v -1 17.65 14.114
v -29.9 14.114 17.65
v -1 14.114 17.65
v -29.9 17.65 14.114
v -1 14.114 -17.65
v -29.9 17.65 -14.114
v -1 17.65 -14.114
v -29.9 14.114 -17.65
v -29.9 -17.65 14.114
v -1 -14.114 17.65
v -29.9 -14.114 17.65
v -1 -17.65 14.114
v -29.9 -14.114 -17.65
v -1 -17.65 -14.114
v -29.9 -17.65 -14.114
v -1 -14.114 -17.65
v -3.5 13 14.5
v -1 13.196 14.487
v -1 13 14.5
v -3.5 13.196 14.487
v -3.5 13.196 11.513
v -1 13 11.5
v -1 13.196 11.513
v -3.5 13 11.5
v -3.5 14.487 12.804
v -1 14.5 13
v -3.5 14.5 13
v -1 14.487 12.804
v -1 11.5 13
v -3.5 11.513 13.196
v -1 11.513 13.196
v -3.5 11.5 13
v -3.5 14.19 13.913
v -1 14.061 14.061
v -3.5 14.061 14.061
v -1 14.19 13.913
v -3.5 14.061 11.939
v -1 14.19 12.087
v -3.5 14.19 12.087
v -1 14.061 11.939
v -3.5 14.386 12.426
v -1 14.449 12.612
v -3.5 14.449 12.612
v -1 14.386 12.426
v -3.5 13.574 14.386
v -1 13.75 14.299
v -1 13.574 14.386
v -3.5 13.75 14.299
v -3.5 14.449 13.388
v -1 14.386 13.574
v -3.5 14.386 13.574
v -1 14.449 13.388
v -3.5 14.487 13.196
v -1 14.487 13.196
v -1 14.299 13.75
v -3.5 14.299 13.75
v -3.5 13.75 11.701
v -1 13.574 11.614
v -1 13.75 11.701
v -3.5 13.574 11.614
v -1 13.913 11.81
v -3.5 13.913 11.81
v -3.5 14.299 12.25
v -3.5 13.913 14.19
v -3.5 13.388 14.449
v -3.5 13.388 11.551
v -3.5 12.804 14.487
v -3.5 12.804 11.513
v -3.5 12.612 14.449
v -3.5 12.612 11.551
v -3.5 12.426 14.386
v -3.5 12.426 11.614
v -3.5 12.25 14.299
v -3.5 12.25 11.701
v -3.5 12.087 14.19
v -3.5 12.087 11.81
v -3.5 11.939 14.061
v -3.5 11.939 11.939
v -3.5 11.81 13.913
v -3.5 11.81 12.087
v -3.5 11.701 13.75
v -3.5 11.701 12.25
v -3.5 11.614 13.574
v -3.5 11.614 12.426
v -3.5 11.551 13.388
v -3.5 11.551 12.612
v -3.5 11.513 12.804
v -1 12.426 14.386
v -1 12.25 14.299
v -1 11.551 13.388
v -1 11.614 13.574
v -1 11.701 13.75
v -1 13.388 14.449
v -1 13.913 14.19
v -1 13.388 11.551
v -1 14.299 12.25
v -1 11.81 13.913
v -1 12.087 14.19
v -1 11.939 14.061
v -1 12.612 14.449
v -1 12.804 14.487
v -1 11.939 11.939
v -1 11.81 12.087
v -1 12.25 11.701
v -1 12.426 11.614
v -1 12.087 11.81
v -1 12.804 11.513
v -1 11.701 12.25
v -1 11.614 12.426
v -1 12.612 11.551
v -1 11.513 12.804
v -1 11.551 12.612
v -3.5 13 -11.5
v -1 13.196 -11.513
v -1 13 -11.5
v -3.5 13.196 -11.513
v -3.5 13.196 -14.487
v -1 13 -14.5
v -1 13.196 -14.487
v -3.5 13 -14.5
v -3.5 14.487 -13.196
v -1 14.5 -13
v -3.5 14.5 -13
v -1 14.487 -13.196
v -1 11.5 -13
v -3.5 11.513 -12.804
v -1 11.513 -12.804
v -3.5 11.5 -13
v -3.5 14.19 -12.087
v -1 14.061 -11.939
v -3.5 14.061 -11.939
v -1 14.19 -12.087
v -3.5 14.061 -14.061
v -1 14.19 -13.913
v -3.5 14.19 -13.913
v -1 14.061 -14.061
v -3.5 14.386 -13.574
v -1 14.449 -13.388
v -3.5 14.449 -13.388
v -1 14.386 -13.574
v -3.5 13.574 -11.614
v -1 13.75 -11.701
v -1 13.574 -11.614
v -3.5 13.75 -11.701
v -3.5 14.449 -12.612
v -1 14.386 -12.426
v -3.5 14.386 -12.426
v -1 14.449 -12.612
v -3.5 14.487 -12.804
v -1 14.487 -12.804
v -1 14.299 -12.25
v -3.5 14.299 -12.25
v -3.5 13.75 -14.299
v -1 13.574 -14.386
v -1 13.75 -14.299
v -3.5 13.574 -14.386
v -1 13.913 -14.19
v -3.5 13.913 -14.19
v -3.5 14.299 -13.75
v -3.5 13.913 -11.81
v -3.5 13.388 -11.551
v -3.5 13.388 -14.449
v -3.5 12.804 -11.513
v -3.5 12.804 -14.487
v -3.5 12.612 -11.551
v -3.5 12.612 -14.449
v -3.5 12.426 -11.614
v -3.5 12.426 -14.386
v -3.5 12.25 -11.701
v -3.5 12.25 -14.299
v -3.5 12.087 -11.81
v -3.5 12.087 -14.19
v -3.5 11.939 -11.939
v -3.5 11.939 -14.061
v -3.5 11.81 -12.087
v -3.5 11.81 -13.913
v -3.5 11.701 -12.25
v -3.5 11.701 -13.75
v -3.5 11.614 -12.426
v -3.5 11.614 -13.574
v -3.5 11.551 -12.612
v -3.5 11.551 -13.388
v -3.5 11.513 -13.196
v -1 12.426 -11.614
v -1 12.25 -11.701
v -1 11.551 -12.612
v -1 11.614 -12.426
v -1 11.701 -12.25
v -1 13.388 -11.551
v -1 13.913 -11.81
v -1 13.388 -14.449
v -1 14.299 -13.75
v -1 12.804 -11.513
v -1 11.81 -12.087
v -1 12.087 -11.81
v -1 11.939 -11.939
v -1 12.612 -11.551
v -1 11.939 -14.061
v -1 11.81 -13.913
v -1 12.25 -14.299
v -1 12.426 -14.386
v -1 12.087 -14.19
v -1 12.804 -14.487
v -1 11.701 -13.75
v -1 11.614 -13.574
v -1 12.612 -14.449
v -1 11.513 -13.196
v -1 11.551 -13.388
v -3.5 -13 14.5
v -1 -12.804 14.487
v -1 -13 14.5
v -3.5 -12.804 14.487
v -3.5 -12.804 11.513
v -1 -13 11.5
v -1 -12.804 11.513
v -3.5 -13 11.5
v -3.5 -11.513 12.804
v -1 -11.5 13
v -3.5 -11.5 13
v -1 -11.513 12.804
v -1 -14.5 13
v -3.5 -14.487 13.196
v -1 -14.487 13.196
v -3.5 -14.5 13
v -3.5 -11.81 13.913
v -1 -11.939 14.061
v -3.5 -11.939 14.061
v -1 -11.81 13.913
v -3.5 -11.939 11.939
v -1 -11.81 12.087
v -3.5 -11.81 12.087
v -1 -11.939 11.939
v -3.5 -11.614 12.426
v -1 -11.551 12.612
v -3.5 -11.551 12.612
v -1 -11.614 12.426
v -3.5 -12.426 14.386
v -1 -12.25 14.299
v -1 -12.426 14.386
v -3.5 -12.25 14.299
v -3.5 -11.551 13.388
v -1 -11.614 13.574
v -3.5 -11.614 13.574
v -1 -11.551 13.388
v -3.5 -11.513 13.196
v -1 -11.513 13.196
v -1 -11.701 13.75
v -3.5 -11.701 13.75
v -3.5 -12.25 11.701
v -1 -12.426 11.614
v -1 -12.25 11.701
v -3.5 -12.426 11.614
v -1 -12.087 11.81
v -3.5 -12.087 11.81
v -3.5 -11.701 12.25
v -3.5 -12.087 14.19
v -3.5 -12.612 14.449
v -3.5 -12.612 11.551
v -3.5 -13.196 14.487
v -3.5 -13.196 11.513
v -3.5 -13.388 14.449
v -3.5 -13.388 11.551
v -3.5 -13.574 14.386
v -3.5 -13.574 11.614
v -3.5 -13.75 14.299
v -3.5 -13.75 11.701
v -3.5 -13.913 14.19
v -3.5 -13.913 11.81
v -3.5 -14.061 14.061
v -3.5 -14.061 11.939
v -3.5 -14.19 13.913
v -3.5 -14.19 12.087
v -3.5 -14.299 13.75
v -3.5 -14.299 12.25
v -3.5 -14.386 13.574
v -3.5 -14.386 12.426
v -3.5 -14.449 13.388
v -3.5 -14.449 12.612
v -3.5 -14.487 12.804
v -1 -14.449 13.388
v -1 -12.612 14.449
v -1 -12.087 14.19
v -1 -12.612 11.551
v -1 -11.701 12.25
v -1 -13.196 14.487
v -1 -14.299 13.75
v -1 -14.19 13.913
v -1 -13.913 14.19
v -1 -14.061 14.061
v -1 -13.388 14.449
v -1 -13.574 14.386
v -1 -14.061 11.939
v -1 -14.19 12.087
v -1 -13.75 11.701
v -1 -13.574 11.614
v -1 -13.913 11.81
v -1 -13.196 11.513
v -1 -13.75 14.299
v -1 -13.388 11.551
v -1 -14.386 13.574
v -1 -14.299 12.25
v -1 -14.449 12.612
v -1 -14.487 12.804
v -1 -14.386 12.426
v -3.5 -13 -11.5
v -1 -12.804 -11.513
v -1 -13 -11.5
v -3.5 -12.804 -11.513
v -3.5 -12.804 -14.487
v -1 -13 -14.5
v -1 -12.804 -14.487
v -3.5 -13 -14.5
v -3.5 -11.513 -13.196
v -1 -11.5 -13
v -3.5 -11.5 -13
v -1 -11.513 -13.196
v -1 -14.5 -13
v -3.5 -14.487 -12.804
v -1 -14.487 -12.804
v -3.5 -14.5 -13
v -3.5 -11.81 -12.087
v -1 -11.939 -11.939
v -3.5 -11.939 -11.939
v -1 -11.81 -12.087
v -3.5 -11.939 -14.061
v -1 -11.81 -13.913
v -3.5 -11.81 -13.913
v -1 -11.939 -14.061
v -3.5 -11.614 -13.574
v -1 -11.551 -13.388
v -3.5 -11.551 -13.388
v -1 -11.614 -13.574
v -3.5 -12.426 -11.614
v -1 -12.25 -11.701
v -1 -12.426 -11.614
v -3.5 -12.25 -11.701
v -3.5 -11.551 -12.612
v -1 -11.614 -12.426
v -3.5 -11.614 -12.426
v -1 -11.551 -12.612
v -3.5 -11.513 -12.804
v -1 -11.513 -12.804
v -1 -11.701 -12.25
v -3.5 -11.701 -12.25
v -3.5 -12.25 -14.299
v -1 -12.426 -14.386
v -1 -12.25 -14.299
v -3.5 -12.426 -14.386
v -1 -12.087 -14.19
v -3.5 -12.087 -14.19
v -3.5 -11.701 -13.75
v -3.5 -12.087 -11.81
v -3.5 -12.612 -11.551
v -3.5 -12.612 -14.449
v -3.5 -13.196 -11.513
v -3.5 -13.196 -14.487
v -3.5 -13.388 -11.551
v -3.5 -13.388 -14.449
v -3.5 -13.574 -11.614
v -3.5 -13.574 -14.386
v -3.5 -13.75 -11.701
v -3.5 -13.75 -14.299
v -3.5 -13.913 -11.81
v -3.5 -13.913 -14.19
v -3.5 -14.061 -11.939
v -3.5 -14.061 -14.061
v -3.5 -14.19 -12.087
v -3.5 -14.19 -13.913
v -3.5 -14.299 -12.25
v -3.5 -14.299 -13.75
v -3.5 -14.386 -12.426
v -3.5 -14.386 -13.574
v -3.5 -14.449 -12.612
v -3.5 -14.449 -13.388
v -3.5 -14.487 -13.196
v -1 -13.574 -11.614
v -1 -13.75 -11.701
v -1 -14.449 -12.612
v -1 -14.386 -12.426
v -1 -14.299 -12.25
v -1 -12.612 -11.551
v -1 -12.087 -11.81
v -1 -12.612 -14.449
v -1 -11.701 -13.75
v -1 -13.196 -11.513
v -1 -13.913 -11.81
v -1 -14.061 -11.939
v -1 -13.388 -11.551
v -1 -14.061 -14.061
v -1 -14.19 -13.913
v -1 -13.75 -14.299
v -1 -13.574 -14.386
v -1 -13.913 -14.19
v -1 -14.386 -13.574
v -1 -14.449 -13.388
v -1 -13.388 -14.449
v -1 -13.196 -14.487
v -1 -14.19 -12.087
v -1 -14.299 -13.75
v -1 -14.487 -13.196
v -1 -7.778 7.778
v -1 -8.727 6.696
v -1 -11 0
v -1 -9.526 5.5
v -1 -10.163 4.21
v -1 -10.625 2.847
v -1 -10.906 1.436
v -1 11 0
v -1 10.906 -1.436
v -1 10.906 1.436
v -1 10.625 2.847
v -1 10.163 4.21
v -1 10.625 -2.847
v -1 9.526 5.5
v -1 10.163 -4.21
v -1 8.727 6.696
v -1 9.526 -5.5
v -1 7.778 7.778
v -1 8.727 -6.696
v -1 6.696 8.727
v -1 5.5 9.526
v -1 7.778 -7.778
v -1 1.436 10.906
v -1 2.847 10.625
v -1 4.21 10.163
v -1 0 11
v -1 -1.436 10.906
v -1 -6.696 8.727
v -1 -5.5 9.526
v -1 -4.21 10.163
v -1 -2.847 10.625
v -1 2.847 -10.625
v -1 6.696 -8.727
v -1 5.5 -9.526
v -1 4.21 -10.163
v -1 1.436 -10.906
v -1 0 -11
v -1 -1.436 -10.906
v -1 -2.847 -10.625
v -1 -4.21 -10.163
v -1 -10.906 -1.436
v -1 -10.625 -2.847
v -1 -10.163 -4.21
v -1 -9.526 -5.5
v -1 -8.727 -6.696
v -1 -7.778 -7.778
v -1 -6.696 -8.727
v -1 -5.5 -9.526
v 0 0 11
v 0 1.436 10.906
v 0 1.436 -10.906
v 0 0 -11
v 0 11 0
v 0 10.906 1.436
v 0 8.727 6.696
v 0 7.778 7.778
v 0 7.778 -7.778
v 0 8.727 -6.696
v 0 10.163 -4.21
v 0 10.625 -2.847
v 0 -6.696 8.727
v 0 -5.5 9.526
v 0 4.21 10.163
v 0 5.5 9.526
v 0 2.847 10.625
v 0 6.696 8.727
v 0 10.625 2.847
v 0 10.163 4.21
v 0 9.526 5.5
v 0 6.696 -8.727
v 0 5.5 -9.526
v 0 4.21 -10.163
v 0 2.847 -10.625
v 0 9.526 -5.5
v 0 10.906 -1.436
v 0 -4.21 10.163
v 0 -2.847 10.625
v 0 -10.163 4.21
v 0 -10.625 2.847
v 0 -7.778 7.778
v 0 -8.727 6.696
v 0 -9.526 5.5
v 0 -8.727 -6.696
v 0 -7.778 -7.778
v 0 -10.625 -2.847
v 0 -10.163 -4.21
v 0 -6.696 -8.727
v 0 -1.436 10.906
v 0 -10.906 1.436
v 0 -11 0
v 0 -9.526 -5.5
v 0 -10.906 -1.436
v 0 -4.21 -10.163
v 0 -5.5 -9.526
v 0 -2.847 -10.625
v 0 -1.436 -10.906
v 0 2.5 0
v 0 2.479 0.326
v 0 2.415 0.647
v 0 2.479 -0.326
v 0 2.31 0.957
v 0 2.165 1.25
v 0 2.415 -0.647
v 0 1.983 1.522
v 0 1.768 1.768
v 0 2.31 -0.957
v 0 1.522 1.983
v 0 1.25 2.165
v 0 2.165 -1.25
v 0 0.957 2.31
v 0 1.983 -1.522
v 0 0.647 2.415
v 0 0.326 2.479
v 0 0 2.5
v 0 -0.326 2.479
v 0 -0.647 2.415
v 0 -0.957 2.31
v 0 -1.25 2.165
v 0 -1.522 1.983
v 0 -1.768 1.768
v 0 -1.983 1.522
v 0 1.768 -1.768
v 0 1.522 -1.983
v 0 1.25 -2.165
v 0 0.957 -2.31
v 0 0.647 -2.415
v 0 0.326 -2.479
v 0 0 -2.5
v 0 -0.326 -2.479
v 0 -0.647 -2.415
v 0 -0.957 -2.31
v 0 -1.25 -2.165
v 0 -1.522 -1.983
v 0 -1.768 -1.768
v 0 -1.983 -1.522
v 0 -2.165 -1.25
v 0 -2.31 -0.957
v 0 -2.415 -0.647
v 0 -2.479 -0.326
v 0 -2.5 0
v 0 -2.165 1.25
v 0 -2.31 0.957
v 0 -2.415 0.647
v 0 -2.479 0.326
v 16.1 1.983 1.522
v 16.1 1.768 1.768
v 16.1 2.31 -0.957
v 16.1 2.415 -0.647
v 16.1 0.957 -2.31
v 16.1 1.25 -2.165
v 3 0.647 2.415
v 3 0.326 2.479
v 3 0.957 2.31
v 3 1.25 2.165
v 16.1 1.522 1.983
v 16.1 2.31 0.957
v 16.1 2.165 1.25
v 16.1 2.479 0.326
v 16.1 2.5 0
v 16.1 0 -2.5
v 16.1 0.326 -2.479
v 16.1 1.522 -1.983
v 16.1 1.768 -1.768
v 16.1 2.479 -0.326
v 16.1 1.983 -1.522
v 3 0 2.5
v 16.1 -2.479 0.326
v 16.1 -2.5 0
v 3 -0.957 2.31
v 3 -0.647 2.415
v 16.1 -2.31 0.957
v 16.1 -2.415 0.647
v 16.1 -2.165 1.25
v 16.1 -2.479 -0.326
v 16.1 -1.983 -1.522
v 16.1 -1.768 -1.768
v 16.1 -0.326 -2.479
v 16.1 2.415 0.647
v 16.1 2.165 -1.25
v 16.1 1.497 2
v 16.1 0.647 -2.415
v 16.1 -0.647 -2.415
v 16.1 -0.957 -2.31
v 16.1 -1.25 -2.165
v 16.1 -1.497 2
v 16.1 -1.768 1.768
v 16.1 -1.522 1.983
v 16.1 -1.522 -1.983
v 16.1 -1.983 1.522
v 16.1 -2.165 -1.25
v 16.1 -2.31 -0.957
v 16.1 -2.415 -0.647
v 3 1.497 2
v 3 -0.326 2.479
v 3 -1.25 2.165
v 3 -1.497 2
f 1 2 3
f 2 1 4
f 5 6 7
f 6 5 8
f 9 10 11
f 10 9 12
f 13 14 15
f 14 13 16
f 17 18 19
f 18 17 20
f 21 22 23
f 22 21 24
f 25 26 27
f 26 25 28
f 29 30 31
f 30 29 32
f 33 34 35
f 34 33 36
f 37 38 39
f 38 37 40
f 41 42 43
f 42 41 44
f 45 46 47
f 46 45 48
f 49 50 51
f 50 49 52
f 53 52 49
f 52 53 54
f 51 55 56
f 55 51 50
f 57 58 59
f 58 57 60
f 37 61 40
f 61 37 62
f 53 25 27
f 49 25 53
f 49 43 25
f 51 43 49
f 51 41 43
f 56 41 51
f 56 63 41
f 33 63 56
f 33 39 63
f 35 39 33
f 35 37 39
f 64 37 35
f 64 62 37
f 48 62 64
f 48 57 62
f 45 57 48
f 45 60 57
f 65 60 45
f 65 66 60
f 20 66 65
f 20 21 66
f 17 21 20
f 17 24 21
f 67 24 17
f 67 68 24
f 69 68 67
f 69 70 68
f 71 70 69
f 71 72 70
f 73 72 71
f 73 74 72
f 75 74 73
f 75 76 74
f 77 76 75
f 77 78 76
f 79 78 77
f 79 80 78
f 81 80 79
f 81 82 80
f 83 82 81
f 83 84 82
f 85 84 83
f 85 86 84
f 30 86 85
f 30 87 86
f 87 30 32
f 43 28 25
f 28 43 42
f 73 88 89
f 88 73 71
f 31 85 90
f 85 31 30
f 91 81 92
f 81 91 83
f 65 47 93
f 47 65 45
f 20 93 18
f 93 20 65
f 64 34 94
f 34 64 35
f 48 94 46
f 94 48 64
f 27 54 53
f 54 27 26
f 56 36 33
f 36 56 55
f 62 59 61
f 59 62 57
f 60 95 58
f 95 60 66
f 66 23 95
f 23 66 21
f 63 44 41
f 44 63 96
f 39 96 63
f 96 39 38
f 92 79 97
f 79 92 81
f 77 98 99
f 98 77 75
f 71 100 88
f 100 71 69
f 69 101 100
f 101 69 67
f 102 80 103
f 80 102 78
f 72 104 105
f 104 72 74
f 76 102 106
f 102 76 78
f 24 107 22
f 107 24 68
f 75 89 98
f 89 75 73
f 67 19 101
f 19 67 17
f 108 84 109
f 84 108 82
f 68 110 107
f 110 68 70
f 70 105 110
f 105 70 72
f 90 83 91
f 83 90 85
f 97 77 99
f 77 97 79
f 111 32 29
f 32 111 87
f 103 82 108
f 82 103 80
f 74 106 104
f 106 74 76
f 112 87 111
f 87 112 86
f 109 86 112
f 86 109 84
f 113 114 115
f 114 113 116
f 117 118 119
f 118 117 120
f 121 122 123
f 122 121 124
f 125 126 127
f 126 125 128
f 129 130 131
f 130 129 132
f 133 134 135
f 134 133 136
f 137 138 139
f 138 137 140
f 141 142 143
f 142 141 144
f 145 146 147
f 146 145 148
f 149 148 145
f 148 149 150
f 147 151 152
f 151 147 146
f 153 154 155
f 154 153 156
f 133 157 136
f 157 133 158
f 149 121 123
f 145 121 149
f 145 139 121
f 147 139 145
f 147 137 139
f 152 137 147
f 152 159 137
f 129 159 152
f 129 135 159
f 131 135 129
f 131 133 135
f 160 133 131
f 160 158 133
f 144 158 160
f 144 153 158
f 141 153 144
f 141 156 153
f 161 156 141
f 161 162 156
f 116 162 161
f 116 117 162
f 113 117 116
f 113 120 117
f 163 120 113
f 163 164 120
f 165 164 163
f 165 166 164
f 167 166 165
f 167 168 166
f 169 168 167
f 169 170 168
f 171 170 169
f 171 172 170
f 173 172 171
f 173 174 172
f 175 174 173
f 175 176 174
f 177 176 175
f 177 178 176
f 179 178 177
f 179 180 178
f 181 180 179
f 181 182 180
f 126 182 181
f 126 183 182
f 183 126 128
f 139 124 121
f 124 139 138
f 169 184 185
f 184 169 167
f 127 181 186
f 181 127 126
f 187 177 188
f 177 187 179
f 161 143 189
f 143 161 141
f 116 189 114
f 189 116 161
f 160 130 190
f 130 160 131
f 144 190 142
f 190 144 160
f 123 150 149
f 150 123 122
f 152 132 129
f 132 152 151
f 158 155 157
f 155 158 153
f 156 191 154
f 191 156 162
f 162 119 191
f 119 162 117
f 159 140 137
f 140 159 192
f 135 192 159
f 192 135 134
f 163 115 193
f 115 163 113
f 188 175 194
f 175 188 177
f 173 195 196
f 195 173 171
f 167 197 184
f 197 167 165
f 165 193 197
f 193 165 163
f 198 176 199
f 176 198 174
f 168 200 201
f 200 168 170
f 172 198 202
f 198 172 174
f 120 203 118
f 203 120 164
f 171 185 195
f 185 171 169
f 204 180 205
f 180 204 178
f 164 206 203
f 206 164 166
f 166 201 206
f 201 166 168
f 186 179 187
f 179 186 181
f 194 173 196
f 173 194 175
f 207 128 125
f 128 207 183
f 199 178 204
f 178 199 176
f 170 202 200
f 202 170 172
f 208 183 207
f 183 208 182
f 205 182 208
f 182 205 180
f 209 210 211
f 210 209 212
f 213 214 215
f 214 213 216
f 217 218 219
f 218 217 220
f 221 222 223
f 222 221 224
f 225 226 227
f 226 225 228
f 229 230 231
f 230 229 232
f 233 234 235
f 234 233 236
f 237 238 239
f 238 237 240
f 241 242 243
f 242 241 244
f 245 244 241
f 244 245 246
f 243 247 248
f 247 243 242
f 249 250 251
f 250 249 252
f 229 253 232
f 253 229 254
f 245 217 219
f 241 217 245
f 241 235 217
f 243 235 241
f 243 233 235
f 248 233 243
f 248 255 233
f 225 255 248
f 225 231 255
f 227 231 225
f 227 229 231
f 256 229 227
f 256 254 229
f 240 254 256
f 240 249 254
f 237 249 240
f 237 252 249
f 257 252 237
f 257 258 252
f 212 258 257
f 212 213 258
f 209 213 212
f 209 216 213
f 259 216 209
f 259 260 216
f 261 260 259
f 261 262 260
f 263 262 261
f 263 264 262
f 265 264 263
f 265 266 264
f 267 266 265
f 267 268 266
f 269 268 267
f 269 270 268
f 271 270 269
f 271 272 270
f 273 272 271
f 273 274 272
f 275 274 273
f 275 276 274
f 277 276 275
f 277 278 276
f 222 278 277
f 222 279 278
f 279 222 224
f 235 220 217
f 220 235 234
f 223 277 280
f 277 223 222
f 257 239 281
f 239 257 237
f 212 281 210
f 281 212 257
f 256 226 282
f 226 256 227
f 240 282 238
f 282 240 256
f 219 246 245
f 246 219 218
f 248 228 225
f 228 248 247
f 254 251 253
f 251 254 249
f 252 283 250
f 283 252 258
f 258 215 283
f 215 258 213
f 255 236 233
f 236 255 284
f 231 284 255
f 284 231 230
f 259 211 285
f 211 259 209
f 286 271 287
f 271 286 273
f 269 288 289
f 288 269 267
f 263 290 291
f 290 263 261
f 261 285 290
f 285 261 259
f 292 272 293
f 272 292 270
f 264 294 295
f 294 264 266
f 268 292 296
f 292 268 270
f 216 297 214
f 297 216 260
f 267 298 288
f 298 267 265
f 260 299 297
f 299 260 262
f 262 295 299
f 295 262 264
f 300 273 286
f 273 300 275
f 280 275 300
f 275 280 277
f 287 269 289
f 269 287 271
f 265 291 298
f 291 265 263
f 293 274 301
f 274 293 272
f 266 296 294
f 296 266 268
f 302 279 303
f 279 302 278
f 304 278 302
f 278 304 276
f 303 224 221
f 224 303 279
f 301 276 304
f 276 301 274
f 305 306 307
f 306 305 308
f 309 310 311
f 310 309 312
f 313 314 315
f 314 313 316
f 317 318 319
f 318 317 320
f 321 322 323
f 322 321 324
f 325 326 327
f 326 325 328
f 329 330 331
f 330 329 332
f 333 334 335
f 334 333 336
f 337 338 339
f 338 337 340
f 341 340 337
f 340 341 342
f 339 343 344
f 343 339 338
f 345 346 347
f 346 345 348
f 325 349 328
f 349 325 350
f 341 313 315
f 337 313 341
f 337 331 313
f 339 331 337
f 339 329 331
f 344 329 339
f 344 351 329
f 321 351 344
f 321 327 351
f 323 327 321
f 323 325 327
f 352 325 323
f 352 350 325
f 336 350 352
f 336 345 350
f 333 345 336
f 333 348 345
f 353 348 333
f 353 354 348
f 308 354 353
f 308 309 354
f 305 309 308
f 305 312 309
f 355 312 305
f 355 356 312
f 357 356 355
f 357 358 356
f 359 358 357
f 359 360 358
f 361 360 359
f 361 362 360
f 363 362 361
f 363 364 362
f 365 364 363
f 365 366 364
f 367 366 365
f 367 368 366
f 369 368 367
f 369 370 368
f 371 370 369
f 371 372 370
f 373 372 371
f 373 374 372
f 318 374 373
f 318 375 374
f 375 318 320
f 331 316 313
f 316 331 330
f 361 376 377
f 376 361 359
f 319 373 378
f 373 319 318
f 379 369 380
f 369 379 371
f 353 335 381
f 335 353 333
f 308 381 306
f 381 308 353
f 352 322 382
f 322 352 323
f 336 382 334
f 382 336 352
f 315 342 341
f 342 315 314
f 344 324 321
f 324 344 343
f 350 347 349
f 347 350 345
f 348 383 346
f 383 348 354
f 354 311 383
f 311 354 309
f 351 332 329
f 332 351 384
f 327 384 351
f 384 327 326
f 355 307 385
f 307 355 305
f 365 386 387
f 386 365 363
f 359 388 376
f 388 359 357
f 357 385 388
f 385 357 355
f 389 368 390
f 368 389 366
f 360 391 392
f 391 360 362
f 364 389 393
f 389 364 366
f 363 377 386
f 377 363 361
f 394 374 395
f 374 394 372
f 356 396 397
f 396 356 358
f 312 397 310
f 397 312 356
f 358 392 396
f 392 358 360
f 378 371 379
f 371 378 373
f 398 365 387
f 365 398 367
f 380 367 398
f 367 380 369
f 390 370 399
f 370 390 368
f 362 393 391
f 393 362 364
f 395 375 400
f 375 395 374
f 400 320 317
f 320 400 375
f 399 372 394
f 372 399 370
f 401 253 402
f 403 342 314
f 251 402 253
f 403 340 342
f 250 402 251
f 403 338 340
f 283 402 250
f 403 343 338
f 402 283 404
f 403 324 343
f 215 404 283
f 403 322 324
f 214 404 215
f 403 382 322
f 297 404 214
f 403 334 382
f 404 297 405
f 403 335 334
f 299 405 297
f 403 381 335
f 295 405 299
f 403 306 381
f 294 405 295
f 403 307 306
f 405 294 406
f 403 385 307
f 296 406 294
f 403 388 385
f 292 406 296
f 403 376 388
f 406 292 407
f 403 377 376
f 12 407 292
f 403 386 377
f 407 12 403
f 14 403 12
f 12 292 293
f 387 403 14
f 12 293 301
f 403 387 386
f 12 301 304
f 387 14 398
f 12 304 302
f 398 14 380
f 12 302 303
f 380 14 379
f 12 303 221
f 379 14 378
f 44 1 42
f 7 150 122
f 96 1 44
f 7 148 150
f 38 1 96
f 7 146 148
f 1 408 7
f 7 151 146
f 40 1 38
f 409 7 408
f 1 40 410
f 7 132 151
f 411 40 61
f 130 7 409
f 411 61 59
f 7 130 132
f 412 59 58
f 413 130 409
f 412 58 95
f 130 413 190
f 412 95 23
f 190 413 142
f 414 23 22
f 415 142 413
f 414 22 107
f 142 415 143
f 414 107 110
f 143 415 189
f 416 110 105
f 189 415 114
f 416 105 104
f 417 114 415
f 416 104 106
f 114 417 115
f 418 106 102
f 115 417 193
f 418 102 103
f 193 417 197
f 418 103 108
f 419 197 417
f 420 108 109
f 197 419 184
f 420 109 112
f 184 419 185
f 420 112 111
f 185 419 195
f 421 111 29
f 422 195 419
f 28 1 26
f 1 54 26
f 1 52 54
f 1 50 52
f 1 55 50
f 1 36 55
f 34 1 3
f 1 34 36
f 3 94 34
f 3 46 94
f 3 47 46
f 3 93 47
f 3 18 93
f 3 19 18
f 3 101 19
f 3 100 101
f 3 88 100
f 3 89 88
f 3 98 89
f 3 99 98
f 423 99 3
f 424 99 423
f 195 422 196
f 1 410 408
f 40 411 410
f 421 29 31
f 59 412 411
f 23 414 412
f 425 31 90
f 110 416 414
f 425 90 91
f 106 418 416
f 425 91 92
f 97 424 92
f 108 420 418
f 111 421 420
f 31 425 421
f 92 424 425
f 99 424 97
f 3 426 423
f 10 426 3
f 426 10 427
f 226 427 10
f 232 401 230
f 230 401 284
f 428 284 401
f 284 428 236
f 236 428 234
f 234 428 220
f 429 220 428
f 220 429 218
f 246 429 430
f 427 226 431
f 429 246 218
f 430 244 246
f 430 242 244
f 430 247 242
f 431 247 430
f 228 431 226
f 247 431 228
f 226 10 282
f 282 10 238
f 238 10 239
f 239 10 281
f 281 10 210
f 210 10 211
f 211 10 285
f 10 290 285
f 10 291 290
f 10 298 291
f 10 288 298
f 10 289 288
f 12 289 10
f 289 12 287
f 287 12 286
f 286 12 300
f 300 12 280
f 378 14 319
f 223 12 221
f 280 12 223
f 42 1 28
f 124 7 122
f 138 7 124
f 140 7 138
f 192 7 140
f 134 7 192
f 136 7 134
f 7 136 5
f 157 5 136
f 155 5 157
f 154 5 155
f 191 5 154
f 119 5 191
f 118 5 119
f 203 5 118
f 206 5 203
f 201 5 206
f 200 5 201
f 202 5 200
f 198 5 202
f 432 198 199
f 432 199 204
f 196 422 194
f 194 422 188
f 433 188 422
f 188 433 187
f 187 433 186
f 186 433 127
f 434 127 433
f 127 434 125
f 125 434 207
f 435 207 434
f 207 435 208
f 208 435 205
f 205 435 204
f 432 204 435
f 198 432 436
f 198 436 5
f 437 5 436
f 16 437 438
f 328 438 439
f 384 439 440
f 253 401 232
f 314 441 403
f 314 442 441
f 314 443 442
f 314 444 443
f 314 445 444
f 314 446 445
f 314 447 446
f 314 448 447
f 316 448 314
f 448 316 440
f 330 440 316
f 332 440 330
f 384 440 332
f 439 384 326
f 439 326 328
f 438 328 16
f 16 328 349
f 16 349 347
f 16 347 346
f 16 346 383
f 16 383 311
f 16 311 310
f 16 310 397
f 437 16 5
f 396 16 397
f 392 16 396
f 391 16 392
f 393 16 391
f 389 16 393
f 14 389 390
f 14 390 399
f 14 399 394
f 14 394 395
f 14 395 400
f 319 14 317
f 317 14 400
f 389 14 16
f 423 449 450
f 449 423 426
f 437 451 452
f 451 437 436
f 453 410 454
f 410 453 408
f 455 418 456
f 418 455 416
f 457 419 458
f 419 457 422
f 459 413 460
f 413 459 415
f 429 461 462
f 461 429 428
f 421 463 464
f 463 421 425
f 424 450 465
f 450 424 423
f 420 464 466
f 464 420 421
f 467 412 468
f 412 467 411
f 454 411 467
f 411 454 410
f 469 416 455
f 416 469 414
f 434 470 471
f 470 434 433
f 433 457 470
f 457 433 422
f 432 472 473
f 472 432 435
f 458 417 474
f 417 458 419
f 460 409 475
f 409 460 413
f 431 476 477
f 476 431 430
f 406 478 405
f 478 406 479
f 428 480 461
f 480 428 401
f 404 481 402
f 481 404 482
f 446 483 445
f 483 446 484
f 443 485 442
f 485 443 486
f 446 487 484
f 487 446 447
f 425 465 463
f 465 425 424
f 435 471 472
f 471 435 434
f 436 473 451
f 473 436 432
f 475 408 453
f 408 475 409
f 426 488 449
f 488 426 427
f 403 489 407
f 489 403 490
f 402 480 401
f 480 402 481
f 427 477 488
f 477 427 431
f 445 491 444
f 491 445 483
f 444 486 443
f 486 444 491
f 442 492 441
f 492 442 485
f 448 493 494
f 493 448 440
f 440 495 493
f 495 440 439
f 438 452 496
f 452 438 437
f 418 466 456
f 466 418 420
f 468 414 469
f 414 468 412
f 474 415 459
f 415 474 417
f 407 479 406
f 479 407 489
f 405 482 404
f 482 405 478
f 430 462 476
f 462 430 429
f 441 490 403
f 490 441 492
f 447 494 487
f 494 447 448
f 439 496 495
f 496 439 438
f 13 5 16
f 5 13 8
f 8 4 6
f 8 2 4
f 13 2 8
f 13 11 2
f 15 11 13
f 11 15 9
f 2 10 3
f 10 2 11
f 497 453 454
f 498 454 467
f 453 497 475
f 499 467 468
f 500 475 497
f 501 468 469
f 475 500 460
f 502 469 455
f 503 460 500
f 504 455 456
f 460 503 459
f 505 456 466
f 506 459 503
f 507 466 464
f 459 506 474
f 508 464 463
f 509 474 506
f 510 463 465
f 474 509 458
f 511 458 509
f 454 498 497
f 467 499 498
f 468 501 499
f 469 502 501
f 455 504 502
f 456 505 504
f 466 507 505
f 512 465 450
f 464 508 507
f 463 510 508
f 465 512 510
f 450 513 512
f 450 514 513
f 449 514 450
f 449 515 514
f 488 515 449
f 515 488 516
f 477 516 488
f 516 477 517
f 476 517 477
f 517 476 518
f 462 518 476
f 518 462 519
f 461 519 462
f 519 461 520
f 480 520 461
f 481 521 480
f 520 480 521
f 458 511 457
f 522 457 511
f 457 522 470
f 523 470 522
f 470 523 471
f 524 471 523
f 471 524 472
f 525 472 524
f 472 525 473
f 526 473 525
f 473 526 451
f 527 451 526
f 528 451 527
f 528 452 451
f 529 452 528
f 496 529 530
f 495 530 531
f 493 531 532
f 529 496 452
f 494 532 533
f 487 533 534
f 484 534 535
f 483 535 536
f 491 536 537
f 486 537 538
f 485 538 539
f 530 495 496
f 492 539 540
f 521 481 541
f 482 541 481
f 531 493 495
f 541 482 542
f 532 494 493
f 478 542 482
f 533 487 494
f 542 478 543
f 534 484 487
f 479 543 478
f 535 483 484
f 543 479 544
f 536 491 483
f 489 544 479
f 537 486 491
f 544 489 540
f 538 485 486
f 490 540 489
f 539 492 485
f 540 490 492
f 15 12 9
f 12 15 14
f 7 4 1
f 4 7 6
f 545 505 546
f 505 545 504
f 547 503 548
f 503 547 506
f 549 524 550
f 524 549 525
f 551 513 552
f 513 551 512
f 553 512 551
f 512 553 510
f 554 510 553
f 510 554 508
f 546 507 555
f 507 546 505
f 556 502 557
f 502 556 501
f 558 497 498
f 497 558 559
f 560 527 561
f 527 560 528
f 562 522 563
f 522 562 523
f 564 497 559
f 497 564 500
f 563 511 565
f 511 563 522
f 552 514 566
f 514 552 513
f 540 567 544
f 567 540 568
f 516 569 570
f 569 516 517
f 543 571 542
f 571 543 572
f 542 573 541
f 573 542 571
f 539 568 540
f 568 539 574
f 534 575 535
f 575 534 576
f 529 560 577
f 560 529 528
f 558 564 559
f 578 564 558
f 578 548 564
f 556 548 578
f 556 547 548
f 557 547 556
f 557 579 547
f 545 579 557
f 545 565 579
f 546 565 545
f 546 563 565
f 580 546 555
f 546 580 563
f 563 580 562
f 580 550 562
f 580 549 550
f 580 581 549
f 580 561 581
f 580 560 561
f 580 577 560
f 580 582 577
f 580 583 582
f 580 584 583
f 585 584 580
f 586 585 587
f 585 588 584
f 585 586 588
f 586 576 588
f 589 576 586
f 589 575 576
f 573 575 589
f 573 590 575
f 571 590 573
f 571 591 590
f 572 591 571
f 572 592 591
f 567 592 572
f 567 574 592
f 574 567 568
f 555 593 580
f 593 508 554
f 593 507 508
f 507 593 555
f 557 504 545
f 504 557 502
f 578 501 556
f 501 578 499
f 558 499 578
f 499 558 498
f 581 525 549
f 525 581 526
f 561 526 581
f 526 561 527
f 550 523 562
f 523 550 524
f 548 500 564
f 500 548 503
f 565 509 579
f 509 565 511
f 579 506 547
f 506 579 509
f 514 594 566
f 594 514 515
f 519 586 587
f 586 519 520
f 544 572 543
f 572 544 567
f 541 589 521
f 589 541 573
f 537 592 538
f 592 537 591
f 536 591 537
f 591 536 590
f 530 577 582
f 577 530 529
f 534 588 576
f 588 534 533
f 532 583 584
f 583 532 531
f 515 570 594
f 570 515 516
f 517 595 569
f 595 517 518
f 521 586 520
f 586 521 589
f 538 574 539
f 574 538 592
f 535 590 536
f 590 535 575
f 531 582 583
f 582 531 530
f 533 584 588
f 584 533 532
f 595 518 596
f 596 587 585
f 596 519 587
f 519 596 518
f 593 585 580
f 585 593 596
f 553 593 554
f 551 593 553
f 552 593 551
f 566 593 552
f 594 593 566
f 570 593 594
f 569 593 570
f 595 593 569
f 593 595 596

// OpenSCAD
/**********************************************************************************************************************
 **
 ** lib/MCAD/stepper_nema14_medium.scad
 **
 ** This file renders a NEMA stepper motor of the dimensions specified by the file name.
 **
 **********************************************************************************************************************/

include <MCAD/stepper.scad>

$fn = 48;
rotate([0, -90, 0])
	motor(Nema14, NemaMedium, dualAxis = false);
